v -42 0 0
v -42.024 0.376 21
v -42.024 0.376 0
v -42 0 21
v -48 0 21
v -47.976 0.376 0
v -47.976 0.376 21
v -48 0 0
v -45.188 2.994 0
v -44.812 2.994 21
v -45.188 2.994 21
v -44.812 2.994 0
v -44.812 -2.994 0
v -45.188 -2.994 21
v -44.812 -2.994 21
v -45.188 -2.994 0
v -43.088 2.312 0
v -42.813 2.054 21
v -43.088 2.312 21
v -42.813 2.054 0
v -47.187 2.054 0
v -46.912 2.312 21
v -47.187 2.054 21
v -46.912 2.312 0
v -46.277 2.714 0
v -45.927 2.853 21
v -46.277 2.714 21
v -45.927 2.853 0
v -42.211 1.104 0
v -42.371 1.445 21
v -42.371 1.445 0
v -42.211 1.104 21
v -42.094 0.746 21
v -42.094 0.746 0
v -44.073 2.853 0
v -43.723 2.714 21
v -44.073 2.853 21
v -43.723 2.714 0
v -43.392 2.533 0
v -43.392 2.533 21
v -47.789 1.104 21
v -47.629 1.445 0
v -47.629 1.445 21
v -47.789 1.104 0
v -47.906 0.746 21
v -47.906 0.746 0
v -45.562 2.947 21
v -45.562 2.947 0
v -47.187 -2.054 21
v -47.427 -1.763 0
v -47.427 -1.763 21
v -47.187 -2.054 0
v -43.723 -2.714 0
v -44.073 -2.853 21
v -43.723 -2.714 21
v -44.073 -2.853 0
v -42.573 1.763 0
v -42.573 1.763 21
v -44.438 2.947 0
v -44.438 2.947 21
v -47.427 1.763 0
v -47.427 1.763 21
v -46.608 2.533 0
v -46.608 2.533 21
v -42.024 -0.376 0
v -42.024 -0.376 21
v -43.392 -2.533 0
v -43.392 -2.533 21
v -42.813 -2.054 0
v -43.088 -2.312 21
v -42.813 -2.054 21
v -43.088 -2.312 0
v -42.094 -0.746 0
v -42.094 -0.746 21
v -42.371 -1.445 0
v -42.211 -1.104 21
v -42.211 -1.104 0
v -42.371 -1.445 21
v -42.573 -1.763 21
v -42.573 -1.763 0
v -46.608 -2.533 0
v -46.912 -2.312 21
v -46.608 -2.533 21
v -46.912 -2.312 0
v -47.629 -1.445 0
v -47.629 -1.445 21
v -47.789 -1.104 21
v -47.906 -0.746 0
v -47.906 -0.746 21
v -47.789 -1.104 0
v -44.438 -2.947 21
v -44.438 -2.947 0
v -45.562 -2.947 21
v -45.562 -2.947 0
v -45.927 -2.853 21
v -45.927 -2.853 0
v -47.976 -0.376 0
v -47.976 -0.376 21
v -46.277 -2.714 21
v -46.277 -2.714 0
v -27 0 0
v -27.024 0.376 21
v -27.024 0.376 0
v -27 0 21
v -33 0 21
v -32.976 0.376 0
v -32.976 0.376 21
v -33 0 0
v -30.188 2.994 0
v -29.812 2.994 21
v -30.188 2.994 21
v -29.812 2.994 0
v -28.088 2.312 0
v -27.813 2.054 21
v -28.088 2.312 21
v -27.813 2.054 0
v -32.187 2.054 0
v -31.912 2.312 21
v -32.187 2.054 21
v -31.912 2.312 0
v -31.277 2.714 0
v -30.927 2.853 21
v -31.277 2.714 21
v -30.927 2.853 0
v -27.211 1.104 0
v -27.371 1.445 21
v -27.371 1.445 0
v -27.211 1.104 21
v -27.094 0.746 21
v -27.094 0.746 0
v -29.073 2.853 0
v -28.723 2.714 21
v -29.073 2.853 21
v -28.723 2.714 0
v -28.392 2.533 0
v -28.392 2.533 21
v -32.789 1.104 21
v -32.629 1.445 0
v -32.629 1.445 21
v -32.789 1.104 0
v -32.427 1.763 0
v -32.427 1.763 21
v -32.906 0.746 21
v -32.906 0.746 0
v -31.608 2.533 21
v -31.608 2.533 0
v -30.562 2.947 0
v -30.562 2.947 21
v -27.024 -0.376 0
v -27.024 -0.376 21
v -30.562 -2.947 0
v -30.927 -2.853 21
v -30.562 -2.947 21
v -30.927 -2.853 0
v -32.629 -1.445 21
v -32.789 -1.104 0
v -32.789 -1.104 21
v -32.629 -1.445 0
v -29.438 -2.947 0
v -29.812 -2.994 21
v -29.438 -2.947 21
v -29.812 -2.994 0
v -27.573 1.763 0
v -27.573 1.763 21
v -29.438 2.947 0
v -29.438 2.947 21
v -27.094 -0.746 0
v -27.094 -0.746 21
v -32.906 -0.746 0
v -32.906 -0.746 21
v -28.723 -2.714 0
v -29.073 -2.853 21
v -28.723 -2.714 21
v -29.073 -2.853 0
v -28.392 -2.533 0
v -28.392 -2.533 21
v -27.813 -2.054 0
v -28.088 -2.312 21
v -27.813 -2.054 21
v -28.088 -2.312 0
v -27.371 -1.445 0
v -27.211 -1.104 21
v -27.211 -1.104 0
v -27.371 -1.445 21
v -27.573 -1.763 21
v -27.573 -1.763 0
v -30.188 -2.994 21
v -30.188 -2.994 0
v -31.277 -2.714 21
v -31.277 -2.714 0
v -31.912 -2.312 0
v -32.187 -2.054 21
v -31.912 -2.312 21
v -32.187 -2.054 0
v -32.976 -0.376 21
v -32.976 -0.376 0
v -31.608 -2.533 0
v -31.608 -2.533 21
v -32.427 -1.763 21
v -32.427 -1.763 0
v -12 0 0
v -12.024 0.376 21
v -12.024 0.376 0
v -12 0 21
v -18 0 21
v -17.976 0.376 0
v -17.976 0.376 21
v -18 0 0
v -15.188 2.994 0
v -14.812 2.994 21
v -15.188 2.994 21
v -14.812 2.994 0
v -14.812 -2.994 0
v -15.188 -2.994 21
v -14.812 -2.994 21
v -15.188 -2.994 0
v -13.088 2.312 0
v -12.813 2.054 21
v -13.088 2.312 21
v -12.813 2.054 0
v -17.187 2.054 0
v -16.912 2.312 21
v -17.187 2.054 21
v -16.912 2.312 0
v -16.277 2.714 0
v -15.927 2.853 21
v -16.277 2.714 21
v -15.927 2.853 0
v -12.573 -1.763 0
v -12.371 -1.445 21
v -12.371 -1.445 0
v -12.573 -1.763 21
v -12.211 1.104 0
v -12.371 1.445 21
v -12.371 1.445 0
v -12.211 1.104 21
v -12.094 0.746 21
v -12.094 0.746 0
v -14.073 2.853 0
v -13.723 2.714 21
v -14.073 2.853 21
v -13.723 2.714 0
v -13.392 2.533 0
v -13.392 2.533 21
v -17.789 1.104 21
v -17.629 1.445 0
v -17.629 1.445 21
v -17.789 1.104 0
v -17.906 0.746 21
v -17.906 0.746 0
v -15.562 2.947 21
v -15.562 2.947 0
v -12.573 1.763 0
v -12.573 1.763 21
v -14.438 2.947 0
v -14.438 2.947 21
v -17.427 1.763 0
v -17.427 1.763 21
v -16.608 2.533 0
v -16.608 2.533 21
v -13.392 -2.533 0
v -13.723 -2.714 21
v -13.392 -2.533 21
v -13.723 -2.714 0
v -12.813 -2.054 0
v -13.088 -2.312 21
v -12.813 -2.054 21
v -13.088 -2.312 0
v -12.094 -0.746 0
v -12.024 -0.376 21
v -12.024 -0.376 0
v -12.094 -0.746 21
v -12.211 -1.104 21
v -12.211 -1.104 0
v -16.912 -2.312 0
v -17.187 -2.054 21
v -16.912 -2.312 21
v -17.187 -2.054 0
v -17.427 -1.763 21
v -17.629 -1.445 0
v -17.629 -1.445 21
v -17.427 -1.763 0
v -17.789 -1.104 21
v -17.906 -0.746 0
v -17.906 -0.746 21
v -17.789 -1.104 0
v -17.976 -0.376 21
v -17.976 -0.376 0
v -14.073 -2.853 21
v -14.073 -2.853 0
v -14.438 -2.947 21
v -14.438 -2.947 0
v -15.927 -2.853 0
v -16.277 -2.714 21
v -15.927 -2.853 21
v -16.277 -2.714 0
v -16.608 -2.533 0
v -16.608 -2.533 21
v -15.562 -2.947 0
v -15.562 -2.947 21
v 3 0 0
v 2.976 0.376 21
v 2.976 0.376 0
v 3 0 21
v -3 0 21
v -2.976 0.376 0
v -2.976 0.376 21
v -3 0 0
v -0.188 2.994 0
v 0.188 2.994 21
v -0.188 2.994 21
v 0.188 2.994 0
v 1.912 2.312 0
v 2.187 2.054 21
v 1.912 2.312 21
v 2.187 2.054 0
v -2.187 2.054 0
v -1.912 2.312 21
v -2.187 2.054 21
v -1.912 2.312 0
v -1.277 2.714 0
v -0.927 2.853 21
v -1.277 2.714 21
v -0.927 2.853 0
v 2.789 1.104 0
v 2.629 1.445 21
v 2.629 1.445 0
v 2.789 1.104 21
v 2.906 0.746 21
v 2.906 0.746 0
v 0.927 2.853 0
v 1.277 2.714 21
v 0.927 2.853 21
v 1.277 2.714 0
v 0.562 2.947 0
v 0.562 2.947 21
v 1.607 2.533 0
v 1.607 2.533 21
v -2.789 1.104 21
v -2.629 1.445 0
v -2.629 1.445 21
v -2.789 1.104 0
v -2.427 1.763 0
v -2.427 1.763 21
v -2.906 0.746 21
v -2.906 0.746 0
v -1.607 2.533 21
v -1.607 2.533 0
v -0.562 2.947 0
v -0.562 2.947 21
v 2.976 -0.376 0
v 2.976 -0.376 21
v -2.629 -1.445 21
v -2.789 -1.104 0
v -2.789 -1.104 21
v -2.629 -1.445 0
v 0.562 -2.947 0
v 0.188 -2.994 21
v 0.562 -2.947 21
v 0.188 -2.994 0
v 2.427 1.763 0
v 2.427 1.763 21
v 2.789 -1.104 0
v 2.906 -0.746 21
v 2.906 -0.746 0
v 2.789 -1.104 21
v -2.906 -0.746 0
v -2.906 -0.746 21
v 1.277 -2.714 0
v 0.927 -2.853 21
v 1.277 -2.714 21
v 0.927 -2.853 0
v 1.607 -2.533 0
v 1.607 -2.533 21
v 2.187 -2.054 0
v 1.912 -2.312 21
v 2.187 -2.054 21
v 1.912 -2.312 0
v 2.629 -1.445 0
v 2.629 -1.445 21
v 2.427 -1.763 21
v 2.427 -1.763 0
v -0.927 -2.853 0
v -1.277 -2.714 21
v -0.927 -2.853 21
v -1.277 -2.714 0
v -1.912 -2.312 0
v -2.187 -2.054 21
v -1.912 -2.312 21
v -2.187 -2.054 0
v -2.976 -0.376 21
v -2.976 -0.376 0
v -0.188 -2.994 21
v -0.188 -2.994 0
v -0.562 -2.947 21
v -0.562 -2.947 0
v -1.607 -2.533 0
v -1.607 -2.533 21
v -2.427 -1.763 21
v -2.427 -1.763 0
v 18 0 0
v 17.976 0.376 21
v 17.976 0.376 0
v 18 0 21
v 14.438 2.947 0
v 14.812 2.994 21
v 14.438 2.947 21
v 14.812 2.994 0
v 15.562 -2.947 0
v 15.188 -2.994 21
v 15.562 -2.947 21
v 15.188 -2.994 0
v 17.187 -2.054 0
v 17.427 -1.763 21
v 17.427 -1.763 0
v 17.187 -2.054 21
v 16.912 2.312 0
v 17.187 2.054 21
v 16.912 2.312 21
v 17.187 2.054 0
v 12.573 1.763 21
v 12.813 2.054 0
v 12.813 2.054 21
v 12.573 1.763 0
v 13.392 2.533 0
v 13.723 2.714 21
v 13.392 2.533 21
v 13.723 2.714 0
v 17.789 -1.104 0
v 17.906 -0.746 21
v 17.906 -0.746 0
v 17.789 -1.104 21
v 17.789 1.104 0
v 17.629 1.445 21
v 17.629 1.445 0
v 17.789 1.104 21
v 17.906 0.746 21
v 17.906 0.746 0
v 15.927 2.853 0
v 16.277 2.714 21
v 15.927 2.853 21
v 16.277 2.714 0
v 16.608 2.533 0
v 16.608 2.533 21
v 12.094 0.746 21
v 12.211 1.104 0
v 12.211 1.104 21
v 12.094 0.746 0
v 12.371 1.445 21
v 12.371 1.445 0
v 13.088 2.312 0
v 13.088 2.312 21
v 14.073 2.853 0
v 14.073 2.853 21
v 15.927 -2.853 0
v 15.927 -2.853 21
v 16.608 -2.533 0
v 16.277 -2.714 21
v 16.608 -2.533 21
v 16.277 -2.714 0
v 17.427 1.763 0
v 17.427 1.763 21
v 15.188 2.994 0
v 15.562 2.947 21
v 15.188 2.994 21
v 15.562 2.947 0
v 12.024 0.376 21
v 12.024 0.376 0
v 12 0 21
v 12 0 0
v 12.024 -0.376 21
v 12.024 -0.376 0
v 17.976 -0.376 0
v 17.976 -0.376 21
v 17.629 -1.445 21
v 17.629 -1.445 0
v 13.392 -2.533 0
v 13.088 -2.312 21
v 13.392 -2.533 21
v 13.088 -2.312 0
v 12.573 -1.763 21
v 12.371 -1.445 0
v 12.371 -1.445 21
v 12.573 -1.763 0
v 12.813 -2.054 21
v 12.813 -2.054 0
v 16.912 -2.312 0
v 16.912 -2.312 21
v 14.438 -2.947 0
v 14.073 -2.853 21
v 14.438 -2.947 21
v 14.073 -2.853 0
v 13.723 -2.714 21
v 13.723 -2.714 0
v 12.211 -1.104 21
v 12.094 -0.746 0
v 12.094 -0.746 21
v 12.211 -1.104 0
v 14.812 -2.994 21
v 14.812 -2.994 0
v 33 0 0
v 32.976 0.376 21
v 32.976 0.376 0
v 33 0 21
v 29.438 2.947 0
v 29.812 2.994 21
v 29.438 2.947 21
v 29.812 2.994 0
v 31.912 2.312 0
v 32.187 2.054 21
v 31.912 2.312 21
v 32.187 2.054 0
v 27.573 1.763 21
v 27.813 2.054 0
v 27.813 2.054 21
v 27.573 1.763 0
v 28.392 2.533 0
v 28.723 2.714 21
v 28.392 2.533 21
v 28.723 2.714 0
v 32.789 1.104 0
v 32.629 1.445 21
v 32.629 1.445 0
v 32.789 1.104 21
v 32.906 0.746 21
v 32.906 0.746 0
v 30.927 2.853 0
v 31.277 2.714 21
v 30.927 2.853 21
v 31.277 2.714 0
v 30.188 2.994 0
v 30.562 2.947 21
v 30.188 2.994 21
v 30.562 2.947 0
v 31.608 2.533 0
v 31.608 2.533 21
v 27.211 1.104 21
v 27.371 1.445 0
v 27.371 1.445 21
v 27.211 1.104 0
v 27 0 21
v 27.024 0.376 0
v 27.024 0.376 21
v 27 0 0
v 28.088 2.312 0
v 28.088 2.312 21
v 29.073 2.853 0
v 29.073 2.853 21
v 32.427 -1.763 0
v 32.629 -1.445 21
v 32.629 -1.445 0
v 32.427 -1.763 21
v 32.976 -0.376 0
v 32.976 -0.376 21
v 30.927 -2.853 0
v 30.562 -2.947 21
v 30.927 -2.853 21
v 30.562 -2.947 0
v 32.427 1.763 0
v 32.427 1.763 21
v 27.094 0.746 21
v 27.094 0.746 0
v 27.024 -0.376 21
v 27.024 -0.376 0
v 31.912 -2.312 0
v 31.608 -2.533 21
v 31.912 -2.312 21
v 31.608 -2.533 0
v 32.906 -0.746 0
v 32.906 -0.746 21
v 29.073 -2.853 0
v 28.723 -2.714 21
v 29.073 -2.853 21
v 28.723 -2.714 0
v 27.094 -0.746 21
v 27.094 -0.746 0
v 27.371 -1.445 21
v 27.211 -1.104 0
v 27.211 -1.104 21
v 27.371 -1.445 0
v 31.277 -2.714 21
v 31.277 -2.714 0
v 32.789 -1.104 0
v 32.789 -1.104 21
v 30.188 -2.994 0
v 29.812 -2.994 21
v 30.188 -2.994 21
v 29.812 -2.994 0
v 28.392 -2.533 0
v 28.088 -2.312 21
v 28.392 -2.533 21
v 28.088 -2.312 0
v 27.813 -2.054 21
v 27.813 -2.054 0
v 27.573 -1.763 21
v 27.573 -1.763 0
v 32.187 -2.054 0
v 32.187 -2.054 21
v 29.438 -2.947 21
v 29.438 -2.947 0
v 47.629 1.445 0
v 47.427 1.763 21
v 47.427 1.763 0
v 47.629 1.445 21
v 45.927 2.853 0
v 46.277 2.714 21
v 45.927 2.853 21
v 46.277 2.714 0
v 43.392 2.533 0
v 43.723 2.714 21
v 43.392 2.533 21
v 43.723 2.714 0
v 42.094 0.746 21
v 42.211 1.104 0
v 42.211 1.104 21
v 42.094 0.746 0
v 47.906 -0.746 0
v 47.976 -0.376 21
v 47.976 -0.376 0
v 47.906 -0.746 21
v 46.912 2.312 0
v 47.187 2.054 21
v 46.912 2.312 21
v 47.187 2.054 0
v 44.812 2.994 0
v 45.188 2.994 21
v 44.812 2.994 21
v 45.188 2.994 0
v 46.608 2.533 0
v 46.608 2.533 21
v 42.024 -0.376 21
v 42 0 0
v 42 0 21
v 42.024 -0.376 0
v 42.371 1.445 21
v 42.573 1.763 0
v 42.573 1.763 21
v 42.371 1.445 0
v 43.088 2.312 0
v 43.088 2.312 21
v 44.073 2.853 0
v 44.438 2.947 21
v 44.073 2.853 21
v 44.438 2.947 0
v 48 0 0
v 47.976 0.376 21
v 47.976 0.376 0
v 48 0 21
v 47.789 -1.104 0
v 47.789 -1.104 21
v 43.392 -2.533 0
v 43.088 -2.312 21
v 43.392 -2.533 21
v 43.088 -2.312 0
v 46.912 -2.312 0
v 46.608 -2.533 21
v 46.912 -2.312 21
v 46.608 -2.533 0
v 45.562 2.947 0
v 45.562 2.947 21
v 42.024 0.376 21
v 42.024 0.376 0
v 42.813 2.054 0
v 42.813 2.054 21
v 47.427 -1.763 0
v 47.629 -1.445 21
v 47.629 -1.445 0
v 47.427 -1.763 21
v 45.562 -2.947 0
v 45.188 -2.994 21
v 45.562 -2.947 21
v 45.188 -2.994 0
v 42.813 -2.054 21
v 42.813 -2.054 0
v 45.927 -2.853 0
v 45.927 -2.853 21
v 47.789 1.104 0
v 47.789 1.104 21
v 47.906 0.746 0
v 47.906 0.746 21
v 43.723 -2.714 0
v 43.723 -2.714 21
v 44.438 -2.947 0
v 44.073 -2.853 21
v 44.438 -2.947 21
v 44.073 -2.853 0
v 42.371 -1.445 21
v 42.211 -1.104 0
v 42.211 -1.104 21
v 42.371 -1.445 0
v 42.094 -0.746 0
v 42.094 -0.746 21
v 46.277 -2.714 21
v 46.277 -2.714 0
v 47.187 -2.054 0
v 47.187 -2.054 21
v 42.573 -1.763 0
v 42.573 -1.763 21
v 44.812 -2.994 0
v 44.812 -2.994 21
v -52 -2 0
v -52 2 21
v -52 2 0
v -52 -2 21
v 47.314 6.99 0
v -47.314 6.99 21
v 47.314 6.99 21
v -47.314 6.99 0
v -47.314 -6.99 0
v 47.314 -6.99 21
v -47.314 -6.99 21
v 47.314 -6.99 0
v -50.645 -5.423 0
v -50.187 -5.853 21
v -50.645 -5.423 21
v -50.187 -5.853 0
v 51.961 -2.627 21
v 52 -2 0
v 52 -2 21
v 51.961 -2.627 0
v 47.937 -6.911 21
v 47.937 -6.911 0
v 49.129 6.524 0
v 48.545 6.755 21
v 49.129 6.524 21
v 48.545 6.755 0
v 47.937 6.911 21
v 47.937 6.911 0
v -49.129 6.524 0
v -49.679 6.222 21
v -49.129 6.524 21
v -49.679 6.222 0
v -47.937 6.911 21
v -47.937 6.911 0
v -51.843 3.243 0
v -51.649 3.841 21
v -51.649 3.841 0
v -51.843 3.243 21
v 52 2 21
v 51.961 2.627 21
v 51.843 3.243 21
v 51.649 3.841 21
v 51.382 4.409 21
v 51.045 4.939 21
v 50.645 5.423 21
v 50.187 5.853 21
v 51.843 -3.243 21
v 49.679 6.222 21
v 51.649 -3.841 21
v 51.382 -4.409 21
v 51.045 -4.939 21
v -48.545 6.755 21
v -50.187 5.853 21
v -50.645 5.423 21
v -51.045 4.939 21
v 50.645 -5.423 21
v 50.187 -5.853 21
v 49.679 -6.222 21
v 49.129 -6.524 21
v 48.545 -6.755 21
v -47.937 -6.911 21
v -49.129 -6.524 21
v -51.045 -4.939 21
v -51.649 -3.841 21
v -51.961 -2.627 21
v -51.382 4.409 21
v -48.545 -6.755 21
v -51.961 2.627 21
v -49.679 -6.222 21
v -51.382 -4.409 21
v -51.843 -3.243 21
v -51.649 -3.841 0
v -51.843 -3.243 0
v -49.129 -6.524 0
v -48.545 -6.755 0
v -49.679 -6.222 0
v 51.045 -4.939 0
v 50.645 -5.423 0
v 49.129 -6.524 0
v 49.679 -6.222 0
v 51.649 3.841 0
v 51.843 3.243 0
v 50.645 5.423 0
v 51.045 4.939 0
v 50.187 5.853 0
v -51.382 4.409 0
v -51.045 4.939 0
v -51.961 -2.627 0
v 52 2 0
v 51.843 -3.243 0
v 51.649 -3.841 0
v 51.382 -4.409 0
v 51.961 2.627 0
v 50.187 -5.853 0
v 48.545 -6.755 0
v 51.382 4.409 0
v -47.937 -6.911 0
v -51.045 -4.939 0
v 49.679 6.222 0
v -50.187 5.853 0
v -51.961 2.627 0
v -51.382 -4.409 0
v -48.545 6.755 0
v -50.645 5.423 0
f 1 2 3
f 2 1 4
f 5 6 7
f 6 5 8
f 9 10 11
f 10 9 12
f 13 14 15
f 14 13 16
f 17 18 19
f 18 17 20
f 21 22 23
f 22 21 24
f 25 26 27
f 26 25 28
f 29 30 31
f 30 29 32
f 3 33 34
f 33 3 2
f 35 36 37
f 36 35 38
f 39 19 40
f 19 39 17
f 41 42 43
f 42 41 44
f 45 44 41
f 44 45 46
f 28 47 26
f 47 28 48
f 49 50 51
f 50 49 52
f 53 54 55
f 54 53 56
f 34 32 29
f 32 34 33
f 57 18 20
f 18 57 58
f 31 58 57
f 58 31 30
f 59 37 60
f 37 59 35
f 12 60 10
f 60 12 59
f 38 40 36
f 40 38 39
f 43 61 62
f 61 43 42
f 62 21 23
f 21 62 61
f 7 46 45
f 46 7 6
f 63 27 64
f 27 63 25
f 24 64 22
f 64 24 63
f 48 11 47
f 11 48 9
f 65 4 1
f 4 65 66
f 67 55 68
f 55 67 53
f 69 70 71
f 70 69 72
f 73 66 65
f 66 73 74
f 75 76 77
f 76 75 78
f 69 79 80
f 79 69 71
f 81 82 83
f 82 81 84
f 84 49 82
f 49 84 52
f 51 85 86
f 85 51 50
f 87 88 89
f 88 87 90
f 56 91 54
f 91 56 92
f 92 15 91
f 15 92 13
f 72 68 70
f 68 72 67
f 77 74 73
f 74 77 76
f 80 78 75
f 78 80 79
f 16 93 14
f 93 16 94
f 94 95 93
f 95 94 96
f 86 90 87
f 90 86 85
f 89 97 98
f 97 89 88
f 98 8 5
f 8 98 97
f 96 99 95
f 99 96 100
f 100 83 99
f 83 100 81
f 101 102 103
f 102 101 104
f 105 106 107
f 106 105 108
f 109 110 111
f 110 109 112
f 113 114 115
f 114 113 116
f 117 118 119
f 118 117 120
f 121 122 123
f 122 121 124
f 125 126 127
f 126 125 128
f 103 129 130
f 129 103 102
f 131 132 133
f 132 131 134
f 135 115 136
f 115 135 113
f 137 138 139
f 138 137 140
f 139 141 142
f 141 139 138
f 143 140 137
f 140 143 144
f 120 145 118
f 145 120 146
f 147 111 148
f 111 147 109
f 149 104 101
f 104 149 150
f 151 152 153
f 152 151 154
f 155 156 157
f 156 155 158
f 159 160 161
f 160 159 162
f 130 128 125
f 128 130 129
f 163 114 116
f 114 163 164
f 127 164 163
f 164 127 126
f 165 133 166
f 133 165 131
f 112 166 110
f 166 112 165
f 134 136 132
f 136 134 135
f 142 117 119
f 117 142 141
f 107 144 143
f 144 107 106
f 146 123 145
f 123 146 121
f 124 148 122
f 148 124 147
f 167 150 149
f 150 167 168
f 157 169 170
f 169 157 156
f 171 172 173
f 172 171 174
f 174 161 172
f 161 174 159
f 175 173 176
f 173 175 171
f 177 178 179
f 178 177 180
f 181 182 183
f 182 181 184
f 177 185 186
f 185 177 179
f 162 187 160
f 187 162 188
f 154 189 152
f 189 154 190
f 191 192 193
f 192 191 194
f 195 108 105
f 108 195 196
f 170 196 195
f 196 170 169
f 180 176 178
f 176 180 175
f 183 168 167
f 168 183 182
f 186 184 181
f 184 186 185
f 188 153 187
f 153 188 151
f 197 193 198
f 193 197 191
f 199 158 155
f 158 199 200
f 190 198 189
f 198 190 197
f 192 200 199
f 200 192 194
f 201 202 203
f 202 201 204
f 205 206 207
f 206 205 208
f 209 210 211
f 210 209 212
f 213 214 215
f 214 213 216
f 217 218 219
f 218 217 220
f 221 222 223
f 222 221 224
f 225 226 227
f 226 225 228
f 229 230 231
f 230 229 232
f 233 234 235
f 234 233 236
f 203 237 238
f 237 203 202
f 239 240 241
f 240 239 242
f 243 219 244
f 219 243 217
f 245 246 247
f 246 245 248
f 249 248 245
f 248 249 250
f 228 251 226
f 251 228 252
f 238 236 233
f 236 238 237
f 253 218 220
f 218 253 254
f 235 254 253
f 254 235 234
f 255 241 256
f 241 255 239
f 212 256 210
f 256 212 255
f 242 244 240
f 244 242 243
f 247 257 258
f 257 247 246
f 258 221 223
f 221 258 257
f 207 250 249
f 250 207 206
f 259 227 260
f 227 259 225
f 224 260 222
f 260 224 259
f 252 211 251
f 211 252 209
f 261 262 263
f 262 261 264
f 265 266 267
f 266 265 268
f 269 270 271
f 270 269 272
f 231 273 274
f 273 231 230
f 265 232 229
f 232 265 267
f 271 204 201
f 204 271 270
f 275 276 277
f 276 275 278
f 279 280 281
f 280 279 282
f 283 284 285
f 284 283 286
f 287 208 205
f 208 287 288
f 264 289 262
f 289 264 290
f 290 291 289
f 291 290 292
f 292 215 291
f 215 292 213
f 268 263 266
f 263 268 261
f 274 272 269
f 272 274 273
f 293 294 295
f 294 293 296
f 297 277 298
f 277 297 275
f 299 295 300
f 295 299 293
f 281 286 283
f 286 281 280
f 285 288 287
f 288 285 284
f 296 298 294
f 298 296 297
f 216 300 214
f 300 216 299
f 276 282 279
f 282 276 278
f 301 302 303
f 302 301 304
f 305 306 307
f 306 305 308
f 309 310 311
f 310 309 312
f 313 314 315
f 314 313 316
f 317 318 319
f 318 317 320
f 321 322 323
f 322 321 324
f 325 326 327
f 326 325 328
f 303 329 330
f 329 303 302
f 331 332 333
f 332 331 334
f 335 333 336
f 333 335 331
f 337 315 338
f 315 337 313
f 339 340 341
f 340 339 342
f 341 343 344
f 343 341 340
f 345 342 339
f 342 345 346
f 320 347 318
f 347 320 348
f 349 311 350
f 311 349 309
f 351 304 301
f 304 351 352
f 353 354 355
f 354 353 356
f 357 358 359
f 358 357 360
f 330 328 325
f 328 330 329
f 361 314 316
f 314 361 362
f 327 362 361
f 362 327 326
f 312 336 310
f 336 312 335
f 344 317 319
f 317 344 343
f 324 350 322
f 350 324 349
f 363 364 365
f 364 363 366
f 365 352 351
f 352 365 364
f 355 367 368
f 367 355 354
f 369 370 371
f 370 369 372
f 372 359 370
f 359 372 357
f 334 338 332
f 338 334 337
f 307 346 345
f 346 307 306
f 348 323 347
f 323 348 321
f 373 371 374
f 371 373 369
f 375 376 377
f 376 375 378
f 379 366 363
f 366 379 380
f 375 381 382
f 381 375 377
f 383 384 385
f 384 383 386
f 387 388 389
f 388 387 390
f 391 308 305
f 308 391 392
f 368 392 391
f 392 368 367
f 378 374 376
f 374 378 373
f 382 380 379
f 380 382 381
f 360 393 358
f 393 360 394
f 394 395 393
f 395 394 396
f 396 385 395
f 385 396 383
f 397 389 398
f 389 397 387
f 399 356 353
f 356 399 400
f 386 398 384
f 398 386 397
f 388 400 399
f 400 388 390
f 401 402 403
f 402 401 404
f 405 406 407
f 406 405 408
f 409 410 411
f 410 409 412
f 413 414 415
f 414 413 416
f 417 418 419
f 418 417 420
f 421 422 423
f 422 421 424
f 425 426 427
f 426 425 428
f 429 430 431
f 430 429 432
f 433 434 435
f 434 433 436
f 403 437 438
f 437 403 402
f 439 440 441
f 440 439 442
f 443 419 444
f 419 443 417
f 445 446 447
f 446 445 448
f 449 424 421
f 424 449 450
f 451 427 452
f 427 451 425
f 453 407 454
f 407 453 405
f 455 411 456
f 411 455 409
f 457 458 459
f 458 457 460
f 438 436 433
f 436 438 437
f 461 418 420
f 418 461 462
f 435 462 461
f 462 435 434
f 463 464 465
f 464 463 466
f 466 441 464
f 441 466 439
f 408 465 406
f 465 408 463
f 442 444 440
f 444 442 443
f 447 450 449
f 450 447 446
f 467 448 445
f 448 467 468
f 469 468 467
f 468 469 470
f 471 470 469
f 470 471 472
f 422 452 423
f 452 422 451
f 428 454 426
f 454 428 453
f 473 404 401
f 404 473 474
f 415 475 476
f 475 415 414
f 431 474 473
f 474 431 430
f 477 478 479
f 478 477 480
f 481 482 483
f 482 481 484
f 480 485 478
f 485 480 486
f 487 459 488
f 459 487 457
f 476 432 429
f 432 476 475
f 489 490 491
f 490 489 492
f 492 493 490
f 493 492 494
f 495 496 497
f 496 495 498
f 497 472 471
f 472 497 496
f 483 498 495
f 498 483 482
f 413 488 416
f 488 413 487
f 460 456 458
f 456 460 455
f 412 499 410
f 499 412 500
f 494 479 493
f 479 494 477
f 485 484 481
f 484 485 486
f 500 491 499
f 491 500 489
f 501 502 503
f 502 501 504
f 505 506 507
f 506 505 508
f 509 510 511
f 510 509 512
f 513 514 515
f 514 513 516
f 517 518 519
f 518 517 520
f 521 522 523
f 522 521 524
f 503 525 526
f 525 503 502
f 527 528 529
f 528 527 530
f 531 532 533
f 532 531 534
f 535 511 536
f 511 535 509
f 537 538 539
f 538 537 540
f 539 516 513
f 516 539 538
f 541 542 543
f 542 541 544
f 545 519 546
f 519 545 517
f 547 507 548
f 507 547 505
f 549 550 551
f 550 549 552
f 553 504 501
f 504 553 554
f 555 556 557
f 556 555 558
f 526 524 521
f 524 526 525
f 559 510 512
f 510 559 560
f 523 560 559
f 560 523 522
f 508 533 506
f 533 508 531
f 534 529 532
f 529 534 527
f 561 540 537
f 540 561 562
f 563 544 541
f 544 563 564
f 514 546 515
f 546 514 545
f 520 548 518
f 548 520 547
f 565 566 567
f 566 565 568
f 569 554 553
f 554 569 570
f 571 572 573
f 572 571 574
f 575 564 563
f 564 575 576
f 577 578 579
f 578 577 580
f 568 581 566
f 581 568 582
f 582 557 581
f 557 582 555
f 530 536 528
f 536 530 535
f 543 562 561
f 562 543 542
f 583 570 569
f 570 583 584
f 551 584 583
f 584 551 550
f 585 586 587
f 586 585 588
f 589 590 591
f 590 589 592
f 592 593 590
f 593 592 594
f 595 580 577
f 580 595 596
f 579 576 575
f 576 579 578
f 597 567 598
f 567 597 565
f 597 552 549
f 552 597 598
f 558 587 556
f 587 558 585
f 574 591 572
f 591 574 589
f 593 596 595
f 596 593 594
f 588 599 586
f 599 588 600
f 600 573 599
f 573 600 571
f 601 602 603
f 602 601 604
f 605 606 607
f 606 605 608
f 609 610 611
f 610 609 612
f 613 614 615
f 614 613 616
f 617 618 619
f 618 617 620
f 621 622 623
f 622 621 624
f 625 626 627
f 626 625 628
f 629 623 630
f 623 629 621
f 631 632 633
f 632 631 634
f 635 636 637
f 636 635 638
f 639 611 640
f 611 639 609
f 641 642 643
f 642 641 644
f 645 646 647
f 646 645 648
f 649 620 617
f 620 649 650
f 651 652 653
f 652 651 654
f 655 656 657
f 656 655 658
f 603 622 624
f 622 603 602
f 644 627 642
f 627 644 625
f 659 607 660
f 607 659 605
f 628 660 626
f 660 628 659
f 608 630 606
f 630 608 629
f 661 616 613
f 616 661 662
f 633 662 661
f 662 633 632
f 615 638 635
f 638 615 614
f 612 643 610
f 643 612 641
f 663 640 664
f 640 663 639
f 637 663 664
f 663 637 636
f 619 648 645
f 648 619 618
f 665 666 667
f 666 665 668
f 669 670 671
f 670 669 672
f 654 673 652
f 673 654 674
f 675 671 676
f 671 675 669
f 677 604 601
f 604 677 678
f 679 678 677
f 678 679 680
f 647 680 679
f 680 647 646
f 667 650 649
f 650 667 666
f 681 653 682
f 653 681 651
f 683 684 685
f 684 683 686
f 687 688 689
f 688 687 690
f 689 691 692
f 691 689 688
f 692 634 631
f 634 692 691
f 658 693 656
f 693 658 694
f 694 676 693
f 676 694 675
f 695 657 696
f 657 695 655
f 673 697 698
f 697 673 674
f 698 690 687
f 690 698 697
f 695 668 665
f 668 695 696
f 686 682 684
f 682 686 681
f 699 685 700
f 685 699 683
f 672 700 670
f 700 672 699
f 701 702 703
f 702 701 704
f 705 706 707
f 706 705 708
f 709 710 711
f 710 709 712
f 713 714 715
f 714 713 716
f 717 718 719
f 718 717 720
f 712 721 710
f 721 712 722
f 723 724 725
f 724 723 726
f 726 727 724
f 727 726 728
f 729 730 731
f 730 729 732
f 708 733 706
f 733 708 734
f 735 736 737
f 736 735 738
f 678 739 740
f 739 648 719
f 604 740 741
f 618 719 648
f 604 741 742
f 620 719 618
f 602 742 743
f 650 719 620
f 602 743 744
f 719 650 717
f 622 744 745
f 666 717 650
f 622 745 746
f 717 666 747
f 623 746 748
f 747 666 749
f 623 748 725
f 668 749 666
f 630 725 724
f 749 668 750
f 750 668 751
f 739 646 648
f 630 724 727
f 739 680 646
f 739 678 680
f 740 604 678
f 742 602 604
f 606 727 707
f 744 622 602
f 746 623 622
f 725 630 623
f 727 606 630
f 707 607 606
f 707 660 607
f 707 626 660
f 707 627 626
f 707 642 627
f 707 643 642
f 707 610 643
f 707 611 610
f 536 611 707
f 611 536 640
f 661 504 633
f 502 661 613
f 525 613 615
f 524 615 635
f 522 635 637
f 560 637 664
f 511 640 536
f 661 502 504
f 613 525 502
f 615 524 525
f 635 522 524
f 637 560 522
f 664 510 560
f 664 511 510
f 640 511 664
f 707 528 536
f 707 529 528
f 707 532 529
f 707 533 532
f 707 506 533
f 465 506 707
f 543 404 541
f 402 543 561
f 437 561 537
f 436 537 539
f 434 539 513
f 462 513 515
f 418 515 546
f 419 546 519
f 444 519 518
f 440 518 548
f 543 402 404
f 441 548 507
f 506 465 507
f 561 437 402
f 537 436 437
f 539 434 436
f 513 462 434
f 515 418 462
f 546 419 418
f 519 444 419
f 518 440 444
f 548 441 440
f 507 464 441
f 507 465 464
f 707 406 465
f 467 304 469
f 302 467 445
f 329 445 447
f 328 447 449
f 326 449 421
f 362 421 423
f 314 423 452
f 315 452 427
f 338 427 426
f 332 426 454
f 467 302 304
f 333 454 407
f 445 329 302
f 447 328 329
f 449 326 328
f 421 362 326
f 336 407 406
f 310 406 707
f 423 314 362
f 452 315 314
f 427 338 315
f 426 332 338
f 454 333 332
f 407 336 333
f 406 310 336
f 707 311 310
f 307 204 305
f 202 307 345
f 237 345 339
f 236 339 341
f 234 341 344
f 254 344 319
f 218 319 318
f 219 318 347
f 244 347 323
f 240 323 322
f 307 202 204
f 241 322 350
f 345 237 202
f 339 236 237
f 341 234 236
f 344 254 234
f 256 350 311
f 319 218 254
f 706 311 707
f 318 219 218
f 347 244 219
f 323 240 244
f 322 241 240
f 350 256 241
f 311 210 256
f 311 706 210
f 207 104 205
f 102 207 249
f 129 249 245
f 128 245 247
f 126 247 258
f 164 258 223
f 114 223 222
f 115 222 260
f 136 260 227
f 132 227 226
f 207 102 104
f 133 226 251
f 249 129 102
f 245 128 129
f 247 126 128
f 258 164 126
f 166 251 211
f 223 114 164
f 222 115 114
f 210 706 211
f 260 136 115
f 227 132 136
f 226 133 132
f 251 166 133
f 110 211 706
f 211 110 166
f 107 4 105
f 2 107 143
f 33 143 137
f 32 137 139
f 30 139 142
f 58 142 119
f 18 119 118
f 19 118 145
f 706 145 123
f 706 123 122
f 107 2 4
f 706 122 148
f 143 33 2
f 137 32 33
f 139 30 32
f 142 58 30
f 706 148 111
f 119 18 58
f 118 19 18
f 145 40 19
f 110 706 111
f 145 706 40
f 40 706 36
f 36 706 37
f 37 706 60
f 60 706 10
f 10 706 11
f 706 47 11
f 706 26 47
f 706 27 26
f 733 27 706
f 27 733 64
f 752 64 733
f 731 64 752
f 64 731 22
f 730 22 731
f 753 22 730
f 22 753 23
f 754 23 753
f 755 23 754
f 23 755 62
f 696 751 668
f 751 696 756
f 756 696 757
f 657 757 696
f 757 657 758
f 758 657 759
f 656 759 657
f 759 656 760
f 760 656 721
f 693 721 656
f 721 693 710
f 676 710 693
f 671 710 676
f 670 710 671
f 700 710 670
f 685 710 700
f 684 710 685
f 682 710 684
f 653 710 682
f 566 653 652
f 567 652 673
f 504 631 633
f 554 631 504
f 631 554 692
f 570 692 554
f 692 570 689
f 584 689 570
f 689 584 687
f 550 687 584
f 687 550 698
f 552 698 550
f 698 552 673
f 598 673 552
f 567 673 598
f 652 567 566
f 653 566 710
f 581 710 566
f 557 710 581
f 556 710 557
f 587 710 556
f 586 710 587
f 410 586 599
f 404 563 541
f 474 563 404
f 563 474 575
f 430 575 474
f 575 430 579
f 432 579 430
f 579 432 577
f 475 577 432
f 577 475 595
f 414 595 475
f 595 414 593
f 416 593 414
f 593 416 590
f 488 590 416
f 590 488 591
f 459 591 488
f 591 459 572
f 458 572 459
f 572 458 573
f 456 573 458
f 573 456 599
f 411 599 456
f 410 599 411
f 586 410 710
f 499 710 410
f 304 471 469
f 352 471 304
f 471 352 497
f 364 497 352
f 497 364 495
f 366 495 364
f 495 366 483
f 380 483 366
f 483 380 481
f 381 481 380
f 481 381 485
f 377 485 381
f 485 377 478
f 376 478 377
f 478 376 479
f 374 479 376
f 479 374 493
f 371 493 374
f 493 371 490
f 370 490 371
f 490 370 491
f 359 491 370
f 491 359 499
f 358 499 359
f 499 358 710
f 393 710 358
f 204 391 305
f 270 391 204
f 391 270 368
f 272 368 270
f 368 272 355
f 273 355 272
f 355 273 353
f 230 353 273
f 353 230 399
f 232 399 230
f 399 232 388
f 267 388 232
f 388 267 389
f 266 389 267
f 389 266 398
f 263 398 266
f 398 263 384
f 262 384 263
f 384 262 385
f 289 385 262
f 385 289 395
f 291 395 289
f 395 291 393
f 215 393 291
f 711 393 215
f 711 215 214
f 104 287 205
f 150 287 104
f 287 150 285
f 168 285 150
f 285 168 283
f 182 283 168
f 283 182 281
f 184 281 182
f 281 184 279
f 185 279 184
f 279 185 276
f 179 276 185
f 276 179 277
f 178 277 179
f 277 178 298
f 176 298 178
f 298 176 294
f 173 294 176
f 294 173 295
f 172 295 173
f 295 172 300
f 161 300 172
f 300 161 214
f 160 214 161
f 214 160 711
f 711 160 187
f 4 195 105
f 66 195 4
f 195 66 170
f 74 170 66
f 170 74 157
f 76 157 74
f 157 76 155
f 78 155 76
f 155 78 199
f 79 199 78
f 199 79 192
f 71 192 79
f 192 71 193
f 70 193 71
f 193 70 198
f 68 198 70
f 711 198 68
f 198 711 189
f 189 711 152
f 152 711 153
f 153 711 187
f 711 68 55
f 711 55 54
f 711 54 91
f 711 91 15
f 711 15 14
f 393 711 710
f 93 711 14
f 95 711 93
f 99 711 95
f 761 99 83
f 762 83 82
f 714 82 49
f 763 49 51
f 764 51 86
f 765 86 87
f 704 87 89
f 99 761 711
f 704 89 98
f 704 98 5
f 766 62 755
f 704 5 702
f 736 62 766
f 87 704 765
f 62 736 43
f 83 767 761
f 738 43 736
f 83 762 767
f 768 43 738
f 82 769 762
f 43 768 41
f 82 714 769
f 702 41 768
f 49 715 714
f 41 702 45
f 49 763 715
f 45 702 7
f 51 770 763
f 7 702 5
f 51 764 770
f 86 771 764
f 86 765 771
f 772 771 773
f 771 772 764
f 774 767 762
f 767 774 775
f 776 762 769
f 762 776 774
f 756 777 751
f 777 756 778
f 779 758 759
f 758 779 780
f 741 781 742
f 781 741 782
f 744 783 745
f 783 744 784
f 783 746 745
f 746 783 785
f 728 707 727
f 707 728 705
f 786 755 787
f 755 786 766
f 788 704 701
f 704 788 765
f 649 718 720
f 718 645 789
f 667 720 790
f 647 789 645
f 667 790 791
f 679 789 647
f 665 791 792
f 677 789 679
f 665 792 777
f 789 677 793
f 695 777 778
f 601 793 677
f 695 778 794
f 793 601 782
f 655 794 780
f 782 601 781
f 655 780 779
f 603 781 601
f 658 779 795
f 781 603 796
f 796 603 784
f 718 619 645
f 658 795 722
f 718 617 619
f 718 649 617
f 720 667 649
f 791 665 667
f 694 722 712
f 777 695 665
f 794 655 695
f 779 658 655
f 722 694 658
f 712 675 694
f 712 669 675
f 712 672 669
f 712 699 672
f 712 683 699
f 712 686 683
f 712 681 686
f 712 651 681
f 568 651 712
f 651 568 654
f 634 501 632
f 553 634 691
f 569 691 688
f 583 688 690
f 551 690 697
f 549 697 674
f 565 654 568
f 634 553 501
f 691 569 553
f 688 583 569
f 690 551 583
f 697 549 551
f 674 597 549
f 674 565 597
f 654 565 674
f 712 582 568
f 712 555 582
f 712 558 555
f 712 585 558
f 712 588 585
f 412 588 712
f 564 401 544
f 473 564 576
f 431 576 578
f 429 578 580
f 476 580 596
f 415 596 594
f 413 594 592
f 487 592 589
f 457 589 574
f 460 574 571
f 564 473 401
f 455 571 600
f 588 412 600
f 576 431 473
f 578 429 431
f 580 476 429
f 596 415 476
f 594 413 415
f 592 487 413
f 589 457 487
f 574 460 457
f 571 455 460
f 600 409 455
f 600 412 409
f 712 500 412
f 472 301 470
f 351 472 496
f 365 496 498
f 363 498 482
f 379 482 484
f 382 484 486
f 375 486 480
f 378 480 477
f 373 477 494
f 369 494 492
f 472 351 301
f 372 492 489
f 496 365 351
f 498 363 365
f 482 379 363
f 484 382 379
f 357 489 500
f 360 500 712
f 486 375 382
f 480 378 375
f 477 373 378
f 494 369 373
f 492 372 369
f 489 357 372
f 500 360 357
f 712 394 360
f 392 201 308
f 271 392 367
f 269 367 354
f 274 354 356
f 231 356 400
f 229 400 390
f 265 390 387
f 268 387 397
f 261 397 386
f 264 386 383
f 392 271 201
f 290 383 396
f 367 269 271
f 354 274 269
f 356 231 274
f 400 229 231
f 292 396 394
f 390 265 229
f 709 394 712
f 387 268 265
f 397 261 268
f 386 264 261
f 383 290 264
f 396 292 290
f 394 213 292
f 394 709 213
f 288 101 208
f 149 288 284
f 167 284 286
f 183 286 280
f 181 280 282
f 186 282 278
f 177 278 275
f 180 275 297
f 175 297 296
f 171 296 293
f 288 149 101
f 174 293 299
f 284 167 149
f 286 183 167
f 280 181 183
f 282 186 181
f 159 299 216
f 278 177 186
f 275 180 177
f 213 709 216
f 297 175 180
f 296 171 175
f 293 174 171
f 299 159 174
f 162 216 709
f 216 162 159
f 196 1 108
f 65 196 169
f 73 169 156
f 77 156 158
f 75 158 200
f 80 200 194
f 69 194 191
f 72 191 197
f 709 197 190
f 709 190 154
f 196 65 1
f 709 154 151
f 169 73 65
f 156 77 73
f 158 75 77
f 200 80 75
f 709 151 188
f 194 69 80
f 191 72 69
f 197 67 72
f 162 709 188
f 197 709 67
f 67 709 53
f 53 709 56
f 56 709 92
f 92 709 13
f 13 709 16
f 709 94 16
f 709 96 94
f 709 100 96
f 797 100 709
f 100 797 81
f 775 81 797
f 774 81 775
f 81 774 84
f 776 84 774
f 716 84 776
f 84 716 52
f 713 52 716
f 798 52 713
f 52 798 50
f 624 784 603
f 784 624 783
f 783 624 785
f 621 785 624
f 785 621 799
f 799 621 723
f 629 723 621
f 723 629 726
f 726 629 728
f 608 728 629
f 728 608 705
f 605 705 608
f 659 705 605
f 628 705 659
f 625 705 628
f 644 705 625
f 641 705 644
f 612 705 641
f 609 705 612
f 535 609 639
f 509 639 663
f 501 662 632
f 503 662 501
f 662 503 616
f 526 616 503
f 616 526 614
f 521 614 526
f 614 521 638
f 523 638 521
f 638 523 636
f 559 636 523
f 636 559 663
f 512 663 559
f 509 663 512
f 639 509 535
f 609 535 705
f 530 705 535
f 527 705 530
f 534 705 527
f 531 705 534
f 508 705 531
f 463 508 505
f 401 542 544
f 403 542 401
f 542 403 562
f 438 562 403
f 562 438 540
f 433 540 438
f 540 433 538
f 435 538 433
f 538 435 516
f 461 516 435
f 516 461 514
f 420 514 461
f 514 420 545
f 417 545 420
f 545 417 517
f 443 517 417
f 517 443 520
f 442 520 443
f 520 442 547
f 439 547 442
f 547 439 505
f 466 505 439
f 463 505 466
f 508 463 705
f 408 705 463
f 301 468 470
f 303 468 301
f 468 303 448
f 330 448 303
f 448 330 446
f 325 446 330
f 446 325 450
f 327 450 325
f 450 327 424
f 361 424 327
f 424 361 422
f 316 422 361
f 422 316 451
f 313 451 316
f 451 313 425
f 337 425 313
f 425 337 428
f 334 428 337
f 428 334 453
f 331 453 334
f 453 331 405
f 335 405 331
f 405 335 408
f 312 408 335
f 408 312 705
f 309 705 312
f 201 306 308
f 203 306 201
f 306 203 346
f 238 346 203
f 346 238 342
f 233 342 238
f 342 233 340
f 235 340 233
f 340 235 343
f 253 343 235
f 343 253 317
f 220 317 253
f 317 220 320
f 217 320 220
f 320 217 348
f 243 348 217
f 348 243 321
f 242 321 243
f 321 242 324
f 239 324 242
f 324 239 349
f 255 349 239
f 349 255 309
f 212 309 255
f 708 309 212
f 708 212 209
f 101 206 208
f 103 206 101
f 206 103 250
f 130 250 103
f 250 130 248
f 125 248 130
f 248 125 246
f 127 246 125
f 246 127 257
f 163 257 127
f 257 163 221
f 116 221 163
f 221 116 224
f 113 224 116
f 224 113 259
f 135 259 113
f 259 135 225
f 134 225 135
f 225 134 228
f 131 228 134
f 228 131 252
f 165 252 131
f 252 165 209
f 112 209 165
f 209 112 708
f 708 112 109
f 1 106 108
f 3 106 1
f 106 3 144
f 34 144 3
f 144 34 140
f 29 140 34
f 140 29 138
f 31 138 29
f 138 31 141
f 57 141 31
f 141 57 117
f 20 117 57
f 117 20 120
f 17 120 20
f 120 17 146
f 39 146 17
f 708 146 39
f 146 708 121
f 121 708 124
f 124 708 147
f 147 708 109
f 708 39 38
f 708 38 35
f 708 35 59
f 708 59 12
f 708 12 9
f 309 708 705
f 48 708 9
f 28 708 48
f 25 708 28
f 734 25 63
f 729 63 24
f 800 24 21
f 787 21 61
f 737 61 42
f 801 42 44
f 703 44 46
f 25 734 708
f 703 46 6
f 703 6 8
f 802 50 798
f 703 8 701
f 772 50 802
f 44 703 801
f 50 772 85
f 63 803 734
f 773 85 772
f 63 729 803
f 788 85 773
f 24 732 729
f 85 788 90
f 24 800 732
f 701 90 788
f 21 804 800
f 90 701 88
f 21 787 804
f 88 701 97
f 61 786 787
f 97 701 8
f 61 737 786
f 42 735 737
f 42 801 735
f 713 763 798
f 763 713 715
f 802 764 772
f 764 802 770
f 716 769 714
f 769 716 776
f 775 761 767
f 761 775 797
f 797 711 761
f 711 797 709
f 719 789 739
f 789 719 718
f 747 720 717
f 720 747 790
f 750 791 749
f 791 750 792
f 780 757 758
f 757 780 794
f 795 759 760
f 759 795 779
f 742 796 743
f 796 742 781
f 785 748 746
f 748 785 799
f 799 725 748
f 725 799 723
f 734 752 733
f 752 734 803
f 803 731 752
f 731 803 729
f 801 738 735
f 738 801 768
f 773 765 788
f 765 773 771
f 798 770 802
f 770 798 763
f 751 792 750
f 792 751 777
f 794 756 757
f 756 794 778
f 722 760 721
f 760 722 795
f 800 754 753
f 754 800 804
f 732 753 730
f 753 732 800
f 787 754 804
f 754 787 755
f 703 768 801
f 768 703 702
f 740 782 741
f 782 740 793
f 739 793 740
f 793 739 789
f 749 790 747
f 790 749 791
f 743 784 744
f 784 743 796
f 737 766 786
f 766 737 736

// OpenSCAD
$fn = 50;


difference() {
	union() {
		hull() {
			translate(v = [-47.0000000000, 2.0000000000, 0]) {
				cylinder(h = 21, r = 5);
			}
			translate(v = [47.0000000000, 2.0000000000, 0]) {
				cylinder(h = 21, r = 5);
			}
			translate(v = [-47.0000000000, -2.0000000000, 0]) {
				cylinder(h = 21, r = 5);
			}
			translate(v = [47.0000000000, -2.0000000000, 0]) {
				cylinder(h = 21, r = 5);
			}
		}
	}
	union() {
		translate(v = [-45.0000000000, 0.0000000000, 0]) {
			translate(v = [0, 0, -100]) {
				cylinder(h = 200, r = 3.0000000000);
			}
		}
		translate(v = [-30.0000000000, 0.0000000000, 0]) {
			translate(v = [0, 0, -100]) {
				cylinder(h = 200, r = 3.0000000000);
			}
		}
		translate(v = [-15.0000000000, 0.0000000000, 0]) {
			translate(v = [0, 0, -100]) {
				cylinder(h = 200, r = 3.0000000000);
			}
		}
		translate(v = [0, 0, -100]) {
			cylinder(h = 200, r = 3.0000000000);
		}
		translate(v = [15.0000000000, 0.0000000000, 0]) {
			translate(v = [0, 0, -100]) {
				cylinder(h = 200, r = 3.0000000000);
			}
		}
		translate(v = [30.0000000000, 0.0000000000, 0]) {
			translate(v = [0, 0, -100]) {
				cylinder(h = 200, r = 3.0000000000);
			}
		}
		translate(v = [45.0000000000, 0.0000000000, 0]) {
			translate(v = [0, 0, -100]) {
				cylinder(h = 200, r = 3.0000000000);
			}
		}
	}
}
